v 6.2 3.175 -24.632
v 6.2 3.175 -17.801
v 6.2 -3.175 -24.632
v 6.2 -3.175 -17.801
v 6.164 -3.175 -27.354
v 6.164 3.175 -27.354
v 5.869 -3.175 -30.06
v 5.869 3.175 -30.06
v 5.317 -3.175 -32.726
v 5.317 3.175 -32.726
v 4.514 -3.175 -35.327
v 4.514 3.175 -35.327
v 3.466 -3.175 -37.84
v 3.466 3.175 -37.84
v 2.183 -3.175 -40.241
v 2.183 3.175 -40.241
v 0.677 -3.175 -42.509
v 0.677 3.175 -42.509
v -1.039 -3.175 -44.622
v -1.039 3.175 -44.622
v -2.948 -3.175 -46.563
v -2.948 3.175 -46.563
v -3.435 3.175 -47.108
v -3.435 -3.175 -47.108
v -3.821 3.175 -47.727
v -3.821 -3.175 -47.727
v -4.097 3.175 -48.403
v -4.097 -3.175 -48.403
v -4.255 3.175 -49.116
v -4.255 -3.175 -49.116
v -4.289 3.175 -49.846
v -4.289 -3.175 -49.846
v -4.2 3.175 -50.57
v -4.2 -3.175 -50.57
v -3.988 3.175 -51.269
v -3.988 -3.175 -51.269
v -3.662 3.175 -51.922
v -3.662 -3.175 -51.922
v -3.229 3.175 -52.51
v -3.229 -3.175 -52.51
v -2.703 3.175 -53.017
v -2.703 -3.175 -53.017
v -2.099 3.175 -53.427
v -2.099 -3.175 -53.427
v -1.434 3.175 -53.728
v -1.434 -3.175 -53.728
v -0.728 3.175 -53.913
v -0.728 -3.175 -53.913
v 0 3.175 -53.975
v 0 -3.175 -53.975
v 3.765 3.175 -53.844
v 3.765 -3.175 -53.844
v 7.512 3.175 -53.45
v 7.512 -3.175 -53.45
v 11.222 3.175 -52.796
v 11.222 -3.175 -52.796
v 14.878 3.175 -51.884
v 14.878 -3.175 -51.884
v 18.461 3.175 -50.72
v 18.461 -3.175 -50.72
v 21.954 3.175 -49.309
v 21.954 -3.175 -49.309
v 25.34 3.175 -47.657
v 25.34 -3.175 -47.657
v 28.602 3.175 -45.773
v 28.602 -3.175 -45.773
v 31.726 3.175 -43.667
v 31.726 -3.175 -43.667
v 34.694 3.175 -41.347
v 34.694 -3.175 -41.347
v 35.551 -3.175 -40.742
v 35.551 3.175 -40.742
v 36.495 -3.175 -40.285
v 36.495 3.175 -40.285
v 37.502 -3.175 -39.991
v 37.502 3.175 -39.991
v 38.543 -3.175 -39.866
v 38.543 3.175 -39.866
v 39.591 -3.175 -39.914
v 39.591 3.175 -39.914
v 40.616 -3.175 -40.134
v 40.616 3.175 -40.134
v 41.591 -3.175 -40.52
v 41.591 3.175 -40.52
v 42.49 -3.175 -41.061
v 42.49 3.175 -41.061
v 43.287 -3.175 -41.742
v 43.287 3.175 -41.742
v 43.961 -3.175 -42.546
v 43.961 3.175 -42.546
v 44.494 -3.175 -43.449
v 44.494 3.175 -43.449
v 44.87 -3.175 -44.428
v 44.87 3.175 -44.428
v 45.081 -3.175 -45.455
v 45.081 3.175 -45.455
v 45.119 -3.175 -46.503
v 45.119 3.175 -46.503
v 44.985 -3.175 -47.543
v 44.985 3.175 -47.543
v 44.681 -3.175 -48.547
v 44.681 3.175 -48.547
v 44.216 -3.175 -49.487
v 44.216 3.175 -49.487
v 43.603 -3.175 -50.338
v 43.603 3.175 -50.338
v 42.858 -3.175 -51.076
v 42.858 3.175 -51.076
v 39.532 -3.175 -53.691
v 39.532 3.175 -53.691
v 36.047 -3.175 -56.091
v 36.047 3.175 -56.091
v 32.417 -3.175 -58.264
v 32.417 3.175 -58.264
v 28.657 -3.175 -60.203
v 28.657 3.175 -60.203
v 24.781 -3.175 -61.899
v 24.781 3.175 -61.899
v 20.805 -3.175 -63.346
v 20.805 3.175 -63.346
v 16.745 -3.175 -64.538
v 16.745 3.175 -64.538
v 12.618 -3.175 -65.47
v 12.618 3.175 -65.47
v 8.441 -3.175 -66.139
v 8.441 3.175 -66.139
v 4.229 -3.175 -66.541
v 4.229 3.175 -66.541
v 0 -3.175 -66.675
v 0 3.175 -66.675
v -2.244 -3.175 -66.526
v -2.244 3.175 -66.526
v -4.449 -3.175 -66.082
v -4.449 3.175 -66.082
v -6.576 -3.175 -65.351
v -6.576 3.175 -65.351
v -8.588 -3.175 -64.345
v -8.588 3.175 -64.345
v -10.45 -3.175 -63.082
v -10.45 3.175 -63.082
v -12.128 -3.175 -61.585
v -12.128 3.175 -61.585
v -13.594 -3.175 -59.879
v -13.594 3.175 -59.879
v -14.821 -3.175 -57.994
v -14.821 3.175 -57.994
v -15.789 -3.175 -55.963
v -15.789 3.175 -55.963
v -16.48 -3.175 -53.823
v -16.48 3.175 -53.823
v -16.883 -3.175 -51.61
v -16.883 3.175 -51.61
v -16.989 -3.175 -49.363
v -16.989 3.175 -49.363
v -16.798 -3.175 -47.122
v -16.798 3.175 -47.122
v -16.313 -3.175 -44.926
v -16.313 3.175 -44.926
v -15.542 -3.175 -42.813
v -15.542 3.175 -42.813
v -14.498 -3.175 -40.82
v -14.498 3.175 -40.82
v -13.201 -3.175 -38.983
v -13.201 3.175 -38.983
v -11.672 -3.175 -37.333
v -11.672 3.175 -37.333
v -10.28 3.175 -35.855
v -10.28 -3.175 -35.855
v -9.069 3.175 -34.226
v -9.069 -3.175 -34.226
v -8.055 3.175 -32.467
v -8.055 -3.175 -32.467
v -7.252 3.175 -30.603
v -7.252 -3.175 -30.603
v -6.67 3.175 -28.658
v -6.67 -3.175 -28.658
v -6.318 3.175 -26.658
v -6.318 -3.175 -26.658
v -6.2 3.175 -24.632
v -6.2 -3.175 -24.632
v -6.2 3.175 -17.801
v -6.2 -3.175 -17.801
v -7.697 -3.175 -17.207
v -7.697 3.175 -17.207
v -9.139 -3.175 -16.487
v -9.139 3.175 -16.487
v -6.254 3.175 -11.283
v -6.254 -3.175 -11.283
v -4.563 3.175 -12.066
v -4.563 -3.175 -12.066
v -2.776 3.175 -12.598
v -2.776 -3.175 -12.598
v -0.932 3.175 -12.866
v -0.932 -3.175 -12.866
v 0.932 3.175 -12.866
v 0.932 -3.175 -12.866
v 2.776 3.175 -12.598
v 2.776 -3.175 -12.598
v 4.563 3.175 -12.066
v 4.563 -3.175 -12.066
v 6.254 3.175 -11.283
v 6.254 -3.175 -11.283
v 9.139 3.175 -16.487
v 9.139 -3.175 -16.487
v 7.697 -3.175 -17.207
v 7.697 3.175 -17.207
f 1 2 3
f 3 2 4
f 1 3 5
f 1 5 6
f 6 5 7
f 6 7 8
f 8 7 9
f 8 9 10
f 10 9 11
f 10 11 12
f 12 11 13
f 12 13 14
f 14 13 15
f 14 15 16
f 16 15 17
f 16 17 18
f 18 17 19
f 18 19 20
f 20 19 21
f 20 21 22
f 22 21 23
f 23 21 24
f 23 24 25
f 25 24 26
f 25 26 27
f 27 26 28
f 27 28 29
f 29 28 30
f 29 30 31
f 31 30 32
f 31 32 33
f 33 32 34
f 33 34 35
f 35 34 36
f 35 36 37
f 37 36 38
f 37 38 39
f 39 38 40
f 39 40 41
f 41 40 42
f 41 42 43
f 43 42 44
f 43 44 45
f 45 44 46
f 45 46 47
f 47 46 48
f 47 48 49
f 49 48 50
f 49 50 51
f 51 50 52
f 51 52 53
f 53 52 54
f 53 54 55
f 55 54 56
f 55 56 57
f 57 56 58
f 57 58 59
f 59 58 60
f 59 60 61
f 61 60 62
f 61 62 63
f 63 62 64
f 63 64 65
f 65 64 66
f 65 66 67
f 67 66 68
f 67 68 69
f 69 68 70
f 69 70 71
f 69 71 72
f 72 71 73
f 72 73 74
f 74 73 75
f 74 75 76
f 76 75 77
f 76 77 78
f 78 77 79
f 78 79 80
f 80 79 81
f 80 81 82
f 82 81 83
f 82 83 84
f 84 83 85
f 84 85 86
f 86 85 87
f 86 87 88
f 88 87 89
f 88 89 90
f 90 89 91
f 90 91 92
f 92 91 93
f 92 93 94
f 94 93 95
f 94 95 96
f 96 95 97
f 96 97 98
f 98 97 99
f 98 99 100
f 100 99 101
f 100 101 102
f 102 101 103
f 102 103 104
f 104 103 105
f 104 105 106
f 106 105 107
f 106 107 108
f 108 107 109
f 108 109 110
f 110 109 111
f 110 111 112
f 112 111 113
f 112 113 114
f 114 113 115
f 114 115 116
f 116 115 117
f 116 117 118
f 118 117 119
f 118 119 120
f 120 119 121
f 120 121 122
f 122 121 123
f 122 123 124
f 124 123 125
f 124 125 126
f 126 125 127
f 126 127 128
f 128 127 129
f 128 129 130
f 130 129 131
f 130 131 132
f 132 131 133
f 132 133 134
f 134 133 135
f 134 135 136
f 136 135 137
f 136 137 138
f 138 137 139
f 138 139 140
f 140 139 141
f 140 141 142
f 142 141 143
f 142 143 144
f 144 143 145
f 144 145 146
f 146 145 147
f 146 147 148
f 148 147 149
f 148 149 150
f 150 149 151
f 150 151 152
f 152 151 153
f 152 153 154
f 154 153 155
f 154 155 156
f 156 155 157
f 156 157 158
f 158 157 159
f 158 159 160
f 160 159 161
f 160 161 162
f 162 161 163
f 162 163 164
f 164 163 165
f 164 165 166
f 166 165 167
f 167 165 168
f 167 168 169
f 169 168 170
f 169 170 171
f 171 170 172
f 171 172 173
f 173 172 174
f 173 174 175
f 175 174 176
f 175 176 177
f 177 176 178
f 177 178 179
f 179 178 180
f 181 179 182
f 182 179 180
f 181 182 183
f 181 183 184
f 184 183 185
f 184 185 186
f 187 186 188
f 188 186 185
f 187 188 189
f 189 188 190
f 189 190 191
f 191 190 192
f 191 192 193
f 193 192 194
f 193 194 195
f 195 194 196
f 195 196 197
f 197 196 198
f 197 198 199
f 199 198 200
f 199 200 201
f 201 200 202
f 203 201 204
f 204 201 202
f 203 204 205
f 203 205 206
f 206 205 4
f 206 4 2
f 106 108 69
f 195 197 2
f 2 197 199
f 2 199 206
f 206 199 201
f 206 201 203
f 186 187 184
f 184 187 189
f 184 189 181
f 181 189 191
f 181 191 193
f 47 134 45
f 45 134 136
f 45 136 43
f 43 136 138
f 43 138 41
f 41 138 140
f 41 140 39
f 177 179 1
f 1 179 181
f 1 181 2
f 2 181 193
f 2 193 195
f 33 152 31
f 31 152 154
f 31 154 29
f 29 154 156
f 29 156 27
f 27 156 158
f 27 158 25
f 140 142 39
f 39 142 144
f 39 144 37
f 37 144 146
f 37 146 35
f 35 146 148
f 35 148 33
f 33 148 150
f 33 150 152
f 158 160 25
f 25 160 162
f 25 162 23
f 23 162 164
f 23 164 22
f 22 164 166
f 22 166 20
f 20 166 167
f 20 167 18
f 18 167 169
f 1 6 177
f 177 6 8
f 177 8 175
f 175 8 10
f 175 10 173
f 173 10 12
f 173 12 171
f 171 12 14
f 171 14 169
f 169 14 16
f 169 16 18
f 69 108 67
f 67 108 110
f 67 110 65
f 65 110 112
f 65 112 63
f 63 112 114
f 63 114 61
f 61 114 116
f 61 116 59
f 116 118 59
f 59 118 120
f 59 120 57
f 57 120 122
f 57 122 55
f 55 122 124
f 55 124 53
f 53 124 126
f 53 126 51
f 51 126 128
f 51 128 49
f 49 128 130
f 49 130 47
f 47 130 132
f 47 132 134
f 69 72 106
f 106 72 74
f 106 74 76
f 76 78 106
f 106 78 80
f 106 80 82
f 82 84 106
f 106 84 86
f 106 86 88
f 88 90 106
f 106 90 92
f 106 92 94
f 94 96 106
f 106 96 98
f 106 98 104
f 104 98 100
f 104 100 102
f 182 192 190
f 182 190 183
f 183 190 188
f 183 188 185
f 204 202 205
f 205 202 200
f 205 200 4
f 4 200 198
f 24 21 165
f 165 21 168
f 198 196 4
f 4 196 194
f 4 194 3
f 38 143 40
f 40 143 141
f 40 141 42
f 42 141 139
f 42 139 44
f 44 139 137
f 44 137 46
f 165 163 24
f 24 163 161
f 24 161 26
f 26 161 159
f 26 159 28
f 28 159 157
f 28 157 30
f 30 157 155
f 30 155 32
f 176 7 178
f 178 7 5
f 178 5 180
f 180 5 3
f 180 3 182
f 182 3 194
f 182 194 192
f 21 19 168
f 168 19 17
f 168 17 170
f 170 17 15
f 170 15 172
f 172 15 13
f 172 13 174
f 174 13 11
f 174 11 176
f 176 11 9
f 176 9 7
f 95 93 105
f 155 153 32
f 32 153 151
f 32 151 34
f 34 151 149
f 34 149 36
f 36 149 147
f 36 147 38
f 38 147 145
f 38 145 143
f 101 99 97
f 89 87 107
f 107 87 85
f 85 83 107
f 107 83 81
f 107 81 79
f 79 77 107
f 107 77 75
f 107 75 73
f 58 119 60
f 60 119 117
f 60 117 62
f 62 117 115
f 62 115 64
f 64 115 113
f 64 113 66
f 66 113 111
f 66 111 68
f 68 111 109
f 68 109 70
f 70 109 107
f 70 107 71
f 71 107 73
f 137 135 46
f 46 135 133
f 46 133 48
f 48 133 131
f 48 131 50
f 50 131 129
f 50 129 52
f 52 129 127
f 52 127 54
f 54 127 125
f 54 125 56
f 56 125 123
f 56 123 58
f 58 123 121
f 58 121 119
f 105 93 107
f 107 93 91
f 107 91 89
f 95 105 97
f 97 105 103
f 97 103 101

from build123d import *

# Parameters (mm, degrees)
BOSS_EXTRUDE1_DEPTH = 3.175


with BuildPart() as part:
    # Sketch8 → Boss-Extrude1 (new, symmetric)
    with BuildSketch(Plane(origin=(0, 0, 0), x_dir=(1, 0, 0), z_dir=(0, 1, 0))):
        with BuildLine():
            Line((-6.254044101, 11.282594222), (-9.138661342, 16.48658148))
            ThreePointArc((-9.138661342, 16.48658148), (-7.69744661, 17.206737508), (-6.2, 17.80119378))
            Line((-6.2, 17.80119378), (-6.2, 24.631686909))
            ThreePointArc((-6.2, 24.631686909), (-7.626220631, 31.546787733), (-11.672110257, 37.333280783))
            ThreePointArc((-11.672110257, 37.333280783), (-15.789036104, 55.963427524), (0, 66.675))
            ThreePointArc((0, 66.675), (22.804193056, 62.654005491), (42.857863876, 51.076013245))
            ThreePointArc((42.857863876, 51.076013245), (43.640544768, 42.12992971), (34.694461233, 41.347248817))
            ThreePointArc((34.694461233, 41.347248817), (18.460537236, 50.719909207), (0, 53.975))
            ThreePointArc((0, 53.975), (-3.988447659, 51.269163755), (-2.948476431, 46.563026873))
            ThreePointArc((-2.948476431, 46.563026873), (4.019706834, 36.595971198), (6.2, 24.631686909))
            Line((6.2, 24.631686909), (6.2, 17.80119378))
            ThreePointArc((6.2, 17.80119378), (7.69744661, 17.206737508), (9.138661342, 16.48658148))
            Line((9.138661342, 16.48658148), (6.254044101, 11.282594222))
            ThreePointArc((6.254044101, 11.282594222), (0, 12.9), (-6.254044101, 11.282594222))
        make_face()
    extrude(amount=BOSS_EXTRUDE1_DEPTH, both=True)


solid = part.part
